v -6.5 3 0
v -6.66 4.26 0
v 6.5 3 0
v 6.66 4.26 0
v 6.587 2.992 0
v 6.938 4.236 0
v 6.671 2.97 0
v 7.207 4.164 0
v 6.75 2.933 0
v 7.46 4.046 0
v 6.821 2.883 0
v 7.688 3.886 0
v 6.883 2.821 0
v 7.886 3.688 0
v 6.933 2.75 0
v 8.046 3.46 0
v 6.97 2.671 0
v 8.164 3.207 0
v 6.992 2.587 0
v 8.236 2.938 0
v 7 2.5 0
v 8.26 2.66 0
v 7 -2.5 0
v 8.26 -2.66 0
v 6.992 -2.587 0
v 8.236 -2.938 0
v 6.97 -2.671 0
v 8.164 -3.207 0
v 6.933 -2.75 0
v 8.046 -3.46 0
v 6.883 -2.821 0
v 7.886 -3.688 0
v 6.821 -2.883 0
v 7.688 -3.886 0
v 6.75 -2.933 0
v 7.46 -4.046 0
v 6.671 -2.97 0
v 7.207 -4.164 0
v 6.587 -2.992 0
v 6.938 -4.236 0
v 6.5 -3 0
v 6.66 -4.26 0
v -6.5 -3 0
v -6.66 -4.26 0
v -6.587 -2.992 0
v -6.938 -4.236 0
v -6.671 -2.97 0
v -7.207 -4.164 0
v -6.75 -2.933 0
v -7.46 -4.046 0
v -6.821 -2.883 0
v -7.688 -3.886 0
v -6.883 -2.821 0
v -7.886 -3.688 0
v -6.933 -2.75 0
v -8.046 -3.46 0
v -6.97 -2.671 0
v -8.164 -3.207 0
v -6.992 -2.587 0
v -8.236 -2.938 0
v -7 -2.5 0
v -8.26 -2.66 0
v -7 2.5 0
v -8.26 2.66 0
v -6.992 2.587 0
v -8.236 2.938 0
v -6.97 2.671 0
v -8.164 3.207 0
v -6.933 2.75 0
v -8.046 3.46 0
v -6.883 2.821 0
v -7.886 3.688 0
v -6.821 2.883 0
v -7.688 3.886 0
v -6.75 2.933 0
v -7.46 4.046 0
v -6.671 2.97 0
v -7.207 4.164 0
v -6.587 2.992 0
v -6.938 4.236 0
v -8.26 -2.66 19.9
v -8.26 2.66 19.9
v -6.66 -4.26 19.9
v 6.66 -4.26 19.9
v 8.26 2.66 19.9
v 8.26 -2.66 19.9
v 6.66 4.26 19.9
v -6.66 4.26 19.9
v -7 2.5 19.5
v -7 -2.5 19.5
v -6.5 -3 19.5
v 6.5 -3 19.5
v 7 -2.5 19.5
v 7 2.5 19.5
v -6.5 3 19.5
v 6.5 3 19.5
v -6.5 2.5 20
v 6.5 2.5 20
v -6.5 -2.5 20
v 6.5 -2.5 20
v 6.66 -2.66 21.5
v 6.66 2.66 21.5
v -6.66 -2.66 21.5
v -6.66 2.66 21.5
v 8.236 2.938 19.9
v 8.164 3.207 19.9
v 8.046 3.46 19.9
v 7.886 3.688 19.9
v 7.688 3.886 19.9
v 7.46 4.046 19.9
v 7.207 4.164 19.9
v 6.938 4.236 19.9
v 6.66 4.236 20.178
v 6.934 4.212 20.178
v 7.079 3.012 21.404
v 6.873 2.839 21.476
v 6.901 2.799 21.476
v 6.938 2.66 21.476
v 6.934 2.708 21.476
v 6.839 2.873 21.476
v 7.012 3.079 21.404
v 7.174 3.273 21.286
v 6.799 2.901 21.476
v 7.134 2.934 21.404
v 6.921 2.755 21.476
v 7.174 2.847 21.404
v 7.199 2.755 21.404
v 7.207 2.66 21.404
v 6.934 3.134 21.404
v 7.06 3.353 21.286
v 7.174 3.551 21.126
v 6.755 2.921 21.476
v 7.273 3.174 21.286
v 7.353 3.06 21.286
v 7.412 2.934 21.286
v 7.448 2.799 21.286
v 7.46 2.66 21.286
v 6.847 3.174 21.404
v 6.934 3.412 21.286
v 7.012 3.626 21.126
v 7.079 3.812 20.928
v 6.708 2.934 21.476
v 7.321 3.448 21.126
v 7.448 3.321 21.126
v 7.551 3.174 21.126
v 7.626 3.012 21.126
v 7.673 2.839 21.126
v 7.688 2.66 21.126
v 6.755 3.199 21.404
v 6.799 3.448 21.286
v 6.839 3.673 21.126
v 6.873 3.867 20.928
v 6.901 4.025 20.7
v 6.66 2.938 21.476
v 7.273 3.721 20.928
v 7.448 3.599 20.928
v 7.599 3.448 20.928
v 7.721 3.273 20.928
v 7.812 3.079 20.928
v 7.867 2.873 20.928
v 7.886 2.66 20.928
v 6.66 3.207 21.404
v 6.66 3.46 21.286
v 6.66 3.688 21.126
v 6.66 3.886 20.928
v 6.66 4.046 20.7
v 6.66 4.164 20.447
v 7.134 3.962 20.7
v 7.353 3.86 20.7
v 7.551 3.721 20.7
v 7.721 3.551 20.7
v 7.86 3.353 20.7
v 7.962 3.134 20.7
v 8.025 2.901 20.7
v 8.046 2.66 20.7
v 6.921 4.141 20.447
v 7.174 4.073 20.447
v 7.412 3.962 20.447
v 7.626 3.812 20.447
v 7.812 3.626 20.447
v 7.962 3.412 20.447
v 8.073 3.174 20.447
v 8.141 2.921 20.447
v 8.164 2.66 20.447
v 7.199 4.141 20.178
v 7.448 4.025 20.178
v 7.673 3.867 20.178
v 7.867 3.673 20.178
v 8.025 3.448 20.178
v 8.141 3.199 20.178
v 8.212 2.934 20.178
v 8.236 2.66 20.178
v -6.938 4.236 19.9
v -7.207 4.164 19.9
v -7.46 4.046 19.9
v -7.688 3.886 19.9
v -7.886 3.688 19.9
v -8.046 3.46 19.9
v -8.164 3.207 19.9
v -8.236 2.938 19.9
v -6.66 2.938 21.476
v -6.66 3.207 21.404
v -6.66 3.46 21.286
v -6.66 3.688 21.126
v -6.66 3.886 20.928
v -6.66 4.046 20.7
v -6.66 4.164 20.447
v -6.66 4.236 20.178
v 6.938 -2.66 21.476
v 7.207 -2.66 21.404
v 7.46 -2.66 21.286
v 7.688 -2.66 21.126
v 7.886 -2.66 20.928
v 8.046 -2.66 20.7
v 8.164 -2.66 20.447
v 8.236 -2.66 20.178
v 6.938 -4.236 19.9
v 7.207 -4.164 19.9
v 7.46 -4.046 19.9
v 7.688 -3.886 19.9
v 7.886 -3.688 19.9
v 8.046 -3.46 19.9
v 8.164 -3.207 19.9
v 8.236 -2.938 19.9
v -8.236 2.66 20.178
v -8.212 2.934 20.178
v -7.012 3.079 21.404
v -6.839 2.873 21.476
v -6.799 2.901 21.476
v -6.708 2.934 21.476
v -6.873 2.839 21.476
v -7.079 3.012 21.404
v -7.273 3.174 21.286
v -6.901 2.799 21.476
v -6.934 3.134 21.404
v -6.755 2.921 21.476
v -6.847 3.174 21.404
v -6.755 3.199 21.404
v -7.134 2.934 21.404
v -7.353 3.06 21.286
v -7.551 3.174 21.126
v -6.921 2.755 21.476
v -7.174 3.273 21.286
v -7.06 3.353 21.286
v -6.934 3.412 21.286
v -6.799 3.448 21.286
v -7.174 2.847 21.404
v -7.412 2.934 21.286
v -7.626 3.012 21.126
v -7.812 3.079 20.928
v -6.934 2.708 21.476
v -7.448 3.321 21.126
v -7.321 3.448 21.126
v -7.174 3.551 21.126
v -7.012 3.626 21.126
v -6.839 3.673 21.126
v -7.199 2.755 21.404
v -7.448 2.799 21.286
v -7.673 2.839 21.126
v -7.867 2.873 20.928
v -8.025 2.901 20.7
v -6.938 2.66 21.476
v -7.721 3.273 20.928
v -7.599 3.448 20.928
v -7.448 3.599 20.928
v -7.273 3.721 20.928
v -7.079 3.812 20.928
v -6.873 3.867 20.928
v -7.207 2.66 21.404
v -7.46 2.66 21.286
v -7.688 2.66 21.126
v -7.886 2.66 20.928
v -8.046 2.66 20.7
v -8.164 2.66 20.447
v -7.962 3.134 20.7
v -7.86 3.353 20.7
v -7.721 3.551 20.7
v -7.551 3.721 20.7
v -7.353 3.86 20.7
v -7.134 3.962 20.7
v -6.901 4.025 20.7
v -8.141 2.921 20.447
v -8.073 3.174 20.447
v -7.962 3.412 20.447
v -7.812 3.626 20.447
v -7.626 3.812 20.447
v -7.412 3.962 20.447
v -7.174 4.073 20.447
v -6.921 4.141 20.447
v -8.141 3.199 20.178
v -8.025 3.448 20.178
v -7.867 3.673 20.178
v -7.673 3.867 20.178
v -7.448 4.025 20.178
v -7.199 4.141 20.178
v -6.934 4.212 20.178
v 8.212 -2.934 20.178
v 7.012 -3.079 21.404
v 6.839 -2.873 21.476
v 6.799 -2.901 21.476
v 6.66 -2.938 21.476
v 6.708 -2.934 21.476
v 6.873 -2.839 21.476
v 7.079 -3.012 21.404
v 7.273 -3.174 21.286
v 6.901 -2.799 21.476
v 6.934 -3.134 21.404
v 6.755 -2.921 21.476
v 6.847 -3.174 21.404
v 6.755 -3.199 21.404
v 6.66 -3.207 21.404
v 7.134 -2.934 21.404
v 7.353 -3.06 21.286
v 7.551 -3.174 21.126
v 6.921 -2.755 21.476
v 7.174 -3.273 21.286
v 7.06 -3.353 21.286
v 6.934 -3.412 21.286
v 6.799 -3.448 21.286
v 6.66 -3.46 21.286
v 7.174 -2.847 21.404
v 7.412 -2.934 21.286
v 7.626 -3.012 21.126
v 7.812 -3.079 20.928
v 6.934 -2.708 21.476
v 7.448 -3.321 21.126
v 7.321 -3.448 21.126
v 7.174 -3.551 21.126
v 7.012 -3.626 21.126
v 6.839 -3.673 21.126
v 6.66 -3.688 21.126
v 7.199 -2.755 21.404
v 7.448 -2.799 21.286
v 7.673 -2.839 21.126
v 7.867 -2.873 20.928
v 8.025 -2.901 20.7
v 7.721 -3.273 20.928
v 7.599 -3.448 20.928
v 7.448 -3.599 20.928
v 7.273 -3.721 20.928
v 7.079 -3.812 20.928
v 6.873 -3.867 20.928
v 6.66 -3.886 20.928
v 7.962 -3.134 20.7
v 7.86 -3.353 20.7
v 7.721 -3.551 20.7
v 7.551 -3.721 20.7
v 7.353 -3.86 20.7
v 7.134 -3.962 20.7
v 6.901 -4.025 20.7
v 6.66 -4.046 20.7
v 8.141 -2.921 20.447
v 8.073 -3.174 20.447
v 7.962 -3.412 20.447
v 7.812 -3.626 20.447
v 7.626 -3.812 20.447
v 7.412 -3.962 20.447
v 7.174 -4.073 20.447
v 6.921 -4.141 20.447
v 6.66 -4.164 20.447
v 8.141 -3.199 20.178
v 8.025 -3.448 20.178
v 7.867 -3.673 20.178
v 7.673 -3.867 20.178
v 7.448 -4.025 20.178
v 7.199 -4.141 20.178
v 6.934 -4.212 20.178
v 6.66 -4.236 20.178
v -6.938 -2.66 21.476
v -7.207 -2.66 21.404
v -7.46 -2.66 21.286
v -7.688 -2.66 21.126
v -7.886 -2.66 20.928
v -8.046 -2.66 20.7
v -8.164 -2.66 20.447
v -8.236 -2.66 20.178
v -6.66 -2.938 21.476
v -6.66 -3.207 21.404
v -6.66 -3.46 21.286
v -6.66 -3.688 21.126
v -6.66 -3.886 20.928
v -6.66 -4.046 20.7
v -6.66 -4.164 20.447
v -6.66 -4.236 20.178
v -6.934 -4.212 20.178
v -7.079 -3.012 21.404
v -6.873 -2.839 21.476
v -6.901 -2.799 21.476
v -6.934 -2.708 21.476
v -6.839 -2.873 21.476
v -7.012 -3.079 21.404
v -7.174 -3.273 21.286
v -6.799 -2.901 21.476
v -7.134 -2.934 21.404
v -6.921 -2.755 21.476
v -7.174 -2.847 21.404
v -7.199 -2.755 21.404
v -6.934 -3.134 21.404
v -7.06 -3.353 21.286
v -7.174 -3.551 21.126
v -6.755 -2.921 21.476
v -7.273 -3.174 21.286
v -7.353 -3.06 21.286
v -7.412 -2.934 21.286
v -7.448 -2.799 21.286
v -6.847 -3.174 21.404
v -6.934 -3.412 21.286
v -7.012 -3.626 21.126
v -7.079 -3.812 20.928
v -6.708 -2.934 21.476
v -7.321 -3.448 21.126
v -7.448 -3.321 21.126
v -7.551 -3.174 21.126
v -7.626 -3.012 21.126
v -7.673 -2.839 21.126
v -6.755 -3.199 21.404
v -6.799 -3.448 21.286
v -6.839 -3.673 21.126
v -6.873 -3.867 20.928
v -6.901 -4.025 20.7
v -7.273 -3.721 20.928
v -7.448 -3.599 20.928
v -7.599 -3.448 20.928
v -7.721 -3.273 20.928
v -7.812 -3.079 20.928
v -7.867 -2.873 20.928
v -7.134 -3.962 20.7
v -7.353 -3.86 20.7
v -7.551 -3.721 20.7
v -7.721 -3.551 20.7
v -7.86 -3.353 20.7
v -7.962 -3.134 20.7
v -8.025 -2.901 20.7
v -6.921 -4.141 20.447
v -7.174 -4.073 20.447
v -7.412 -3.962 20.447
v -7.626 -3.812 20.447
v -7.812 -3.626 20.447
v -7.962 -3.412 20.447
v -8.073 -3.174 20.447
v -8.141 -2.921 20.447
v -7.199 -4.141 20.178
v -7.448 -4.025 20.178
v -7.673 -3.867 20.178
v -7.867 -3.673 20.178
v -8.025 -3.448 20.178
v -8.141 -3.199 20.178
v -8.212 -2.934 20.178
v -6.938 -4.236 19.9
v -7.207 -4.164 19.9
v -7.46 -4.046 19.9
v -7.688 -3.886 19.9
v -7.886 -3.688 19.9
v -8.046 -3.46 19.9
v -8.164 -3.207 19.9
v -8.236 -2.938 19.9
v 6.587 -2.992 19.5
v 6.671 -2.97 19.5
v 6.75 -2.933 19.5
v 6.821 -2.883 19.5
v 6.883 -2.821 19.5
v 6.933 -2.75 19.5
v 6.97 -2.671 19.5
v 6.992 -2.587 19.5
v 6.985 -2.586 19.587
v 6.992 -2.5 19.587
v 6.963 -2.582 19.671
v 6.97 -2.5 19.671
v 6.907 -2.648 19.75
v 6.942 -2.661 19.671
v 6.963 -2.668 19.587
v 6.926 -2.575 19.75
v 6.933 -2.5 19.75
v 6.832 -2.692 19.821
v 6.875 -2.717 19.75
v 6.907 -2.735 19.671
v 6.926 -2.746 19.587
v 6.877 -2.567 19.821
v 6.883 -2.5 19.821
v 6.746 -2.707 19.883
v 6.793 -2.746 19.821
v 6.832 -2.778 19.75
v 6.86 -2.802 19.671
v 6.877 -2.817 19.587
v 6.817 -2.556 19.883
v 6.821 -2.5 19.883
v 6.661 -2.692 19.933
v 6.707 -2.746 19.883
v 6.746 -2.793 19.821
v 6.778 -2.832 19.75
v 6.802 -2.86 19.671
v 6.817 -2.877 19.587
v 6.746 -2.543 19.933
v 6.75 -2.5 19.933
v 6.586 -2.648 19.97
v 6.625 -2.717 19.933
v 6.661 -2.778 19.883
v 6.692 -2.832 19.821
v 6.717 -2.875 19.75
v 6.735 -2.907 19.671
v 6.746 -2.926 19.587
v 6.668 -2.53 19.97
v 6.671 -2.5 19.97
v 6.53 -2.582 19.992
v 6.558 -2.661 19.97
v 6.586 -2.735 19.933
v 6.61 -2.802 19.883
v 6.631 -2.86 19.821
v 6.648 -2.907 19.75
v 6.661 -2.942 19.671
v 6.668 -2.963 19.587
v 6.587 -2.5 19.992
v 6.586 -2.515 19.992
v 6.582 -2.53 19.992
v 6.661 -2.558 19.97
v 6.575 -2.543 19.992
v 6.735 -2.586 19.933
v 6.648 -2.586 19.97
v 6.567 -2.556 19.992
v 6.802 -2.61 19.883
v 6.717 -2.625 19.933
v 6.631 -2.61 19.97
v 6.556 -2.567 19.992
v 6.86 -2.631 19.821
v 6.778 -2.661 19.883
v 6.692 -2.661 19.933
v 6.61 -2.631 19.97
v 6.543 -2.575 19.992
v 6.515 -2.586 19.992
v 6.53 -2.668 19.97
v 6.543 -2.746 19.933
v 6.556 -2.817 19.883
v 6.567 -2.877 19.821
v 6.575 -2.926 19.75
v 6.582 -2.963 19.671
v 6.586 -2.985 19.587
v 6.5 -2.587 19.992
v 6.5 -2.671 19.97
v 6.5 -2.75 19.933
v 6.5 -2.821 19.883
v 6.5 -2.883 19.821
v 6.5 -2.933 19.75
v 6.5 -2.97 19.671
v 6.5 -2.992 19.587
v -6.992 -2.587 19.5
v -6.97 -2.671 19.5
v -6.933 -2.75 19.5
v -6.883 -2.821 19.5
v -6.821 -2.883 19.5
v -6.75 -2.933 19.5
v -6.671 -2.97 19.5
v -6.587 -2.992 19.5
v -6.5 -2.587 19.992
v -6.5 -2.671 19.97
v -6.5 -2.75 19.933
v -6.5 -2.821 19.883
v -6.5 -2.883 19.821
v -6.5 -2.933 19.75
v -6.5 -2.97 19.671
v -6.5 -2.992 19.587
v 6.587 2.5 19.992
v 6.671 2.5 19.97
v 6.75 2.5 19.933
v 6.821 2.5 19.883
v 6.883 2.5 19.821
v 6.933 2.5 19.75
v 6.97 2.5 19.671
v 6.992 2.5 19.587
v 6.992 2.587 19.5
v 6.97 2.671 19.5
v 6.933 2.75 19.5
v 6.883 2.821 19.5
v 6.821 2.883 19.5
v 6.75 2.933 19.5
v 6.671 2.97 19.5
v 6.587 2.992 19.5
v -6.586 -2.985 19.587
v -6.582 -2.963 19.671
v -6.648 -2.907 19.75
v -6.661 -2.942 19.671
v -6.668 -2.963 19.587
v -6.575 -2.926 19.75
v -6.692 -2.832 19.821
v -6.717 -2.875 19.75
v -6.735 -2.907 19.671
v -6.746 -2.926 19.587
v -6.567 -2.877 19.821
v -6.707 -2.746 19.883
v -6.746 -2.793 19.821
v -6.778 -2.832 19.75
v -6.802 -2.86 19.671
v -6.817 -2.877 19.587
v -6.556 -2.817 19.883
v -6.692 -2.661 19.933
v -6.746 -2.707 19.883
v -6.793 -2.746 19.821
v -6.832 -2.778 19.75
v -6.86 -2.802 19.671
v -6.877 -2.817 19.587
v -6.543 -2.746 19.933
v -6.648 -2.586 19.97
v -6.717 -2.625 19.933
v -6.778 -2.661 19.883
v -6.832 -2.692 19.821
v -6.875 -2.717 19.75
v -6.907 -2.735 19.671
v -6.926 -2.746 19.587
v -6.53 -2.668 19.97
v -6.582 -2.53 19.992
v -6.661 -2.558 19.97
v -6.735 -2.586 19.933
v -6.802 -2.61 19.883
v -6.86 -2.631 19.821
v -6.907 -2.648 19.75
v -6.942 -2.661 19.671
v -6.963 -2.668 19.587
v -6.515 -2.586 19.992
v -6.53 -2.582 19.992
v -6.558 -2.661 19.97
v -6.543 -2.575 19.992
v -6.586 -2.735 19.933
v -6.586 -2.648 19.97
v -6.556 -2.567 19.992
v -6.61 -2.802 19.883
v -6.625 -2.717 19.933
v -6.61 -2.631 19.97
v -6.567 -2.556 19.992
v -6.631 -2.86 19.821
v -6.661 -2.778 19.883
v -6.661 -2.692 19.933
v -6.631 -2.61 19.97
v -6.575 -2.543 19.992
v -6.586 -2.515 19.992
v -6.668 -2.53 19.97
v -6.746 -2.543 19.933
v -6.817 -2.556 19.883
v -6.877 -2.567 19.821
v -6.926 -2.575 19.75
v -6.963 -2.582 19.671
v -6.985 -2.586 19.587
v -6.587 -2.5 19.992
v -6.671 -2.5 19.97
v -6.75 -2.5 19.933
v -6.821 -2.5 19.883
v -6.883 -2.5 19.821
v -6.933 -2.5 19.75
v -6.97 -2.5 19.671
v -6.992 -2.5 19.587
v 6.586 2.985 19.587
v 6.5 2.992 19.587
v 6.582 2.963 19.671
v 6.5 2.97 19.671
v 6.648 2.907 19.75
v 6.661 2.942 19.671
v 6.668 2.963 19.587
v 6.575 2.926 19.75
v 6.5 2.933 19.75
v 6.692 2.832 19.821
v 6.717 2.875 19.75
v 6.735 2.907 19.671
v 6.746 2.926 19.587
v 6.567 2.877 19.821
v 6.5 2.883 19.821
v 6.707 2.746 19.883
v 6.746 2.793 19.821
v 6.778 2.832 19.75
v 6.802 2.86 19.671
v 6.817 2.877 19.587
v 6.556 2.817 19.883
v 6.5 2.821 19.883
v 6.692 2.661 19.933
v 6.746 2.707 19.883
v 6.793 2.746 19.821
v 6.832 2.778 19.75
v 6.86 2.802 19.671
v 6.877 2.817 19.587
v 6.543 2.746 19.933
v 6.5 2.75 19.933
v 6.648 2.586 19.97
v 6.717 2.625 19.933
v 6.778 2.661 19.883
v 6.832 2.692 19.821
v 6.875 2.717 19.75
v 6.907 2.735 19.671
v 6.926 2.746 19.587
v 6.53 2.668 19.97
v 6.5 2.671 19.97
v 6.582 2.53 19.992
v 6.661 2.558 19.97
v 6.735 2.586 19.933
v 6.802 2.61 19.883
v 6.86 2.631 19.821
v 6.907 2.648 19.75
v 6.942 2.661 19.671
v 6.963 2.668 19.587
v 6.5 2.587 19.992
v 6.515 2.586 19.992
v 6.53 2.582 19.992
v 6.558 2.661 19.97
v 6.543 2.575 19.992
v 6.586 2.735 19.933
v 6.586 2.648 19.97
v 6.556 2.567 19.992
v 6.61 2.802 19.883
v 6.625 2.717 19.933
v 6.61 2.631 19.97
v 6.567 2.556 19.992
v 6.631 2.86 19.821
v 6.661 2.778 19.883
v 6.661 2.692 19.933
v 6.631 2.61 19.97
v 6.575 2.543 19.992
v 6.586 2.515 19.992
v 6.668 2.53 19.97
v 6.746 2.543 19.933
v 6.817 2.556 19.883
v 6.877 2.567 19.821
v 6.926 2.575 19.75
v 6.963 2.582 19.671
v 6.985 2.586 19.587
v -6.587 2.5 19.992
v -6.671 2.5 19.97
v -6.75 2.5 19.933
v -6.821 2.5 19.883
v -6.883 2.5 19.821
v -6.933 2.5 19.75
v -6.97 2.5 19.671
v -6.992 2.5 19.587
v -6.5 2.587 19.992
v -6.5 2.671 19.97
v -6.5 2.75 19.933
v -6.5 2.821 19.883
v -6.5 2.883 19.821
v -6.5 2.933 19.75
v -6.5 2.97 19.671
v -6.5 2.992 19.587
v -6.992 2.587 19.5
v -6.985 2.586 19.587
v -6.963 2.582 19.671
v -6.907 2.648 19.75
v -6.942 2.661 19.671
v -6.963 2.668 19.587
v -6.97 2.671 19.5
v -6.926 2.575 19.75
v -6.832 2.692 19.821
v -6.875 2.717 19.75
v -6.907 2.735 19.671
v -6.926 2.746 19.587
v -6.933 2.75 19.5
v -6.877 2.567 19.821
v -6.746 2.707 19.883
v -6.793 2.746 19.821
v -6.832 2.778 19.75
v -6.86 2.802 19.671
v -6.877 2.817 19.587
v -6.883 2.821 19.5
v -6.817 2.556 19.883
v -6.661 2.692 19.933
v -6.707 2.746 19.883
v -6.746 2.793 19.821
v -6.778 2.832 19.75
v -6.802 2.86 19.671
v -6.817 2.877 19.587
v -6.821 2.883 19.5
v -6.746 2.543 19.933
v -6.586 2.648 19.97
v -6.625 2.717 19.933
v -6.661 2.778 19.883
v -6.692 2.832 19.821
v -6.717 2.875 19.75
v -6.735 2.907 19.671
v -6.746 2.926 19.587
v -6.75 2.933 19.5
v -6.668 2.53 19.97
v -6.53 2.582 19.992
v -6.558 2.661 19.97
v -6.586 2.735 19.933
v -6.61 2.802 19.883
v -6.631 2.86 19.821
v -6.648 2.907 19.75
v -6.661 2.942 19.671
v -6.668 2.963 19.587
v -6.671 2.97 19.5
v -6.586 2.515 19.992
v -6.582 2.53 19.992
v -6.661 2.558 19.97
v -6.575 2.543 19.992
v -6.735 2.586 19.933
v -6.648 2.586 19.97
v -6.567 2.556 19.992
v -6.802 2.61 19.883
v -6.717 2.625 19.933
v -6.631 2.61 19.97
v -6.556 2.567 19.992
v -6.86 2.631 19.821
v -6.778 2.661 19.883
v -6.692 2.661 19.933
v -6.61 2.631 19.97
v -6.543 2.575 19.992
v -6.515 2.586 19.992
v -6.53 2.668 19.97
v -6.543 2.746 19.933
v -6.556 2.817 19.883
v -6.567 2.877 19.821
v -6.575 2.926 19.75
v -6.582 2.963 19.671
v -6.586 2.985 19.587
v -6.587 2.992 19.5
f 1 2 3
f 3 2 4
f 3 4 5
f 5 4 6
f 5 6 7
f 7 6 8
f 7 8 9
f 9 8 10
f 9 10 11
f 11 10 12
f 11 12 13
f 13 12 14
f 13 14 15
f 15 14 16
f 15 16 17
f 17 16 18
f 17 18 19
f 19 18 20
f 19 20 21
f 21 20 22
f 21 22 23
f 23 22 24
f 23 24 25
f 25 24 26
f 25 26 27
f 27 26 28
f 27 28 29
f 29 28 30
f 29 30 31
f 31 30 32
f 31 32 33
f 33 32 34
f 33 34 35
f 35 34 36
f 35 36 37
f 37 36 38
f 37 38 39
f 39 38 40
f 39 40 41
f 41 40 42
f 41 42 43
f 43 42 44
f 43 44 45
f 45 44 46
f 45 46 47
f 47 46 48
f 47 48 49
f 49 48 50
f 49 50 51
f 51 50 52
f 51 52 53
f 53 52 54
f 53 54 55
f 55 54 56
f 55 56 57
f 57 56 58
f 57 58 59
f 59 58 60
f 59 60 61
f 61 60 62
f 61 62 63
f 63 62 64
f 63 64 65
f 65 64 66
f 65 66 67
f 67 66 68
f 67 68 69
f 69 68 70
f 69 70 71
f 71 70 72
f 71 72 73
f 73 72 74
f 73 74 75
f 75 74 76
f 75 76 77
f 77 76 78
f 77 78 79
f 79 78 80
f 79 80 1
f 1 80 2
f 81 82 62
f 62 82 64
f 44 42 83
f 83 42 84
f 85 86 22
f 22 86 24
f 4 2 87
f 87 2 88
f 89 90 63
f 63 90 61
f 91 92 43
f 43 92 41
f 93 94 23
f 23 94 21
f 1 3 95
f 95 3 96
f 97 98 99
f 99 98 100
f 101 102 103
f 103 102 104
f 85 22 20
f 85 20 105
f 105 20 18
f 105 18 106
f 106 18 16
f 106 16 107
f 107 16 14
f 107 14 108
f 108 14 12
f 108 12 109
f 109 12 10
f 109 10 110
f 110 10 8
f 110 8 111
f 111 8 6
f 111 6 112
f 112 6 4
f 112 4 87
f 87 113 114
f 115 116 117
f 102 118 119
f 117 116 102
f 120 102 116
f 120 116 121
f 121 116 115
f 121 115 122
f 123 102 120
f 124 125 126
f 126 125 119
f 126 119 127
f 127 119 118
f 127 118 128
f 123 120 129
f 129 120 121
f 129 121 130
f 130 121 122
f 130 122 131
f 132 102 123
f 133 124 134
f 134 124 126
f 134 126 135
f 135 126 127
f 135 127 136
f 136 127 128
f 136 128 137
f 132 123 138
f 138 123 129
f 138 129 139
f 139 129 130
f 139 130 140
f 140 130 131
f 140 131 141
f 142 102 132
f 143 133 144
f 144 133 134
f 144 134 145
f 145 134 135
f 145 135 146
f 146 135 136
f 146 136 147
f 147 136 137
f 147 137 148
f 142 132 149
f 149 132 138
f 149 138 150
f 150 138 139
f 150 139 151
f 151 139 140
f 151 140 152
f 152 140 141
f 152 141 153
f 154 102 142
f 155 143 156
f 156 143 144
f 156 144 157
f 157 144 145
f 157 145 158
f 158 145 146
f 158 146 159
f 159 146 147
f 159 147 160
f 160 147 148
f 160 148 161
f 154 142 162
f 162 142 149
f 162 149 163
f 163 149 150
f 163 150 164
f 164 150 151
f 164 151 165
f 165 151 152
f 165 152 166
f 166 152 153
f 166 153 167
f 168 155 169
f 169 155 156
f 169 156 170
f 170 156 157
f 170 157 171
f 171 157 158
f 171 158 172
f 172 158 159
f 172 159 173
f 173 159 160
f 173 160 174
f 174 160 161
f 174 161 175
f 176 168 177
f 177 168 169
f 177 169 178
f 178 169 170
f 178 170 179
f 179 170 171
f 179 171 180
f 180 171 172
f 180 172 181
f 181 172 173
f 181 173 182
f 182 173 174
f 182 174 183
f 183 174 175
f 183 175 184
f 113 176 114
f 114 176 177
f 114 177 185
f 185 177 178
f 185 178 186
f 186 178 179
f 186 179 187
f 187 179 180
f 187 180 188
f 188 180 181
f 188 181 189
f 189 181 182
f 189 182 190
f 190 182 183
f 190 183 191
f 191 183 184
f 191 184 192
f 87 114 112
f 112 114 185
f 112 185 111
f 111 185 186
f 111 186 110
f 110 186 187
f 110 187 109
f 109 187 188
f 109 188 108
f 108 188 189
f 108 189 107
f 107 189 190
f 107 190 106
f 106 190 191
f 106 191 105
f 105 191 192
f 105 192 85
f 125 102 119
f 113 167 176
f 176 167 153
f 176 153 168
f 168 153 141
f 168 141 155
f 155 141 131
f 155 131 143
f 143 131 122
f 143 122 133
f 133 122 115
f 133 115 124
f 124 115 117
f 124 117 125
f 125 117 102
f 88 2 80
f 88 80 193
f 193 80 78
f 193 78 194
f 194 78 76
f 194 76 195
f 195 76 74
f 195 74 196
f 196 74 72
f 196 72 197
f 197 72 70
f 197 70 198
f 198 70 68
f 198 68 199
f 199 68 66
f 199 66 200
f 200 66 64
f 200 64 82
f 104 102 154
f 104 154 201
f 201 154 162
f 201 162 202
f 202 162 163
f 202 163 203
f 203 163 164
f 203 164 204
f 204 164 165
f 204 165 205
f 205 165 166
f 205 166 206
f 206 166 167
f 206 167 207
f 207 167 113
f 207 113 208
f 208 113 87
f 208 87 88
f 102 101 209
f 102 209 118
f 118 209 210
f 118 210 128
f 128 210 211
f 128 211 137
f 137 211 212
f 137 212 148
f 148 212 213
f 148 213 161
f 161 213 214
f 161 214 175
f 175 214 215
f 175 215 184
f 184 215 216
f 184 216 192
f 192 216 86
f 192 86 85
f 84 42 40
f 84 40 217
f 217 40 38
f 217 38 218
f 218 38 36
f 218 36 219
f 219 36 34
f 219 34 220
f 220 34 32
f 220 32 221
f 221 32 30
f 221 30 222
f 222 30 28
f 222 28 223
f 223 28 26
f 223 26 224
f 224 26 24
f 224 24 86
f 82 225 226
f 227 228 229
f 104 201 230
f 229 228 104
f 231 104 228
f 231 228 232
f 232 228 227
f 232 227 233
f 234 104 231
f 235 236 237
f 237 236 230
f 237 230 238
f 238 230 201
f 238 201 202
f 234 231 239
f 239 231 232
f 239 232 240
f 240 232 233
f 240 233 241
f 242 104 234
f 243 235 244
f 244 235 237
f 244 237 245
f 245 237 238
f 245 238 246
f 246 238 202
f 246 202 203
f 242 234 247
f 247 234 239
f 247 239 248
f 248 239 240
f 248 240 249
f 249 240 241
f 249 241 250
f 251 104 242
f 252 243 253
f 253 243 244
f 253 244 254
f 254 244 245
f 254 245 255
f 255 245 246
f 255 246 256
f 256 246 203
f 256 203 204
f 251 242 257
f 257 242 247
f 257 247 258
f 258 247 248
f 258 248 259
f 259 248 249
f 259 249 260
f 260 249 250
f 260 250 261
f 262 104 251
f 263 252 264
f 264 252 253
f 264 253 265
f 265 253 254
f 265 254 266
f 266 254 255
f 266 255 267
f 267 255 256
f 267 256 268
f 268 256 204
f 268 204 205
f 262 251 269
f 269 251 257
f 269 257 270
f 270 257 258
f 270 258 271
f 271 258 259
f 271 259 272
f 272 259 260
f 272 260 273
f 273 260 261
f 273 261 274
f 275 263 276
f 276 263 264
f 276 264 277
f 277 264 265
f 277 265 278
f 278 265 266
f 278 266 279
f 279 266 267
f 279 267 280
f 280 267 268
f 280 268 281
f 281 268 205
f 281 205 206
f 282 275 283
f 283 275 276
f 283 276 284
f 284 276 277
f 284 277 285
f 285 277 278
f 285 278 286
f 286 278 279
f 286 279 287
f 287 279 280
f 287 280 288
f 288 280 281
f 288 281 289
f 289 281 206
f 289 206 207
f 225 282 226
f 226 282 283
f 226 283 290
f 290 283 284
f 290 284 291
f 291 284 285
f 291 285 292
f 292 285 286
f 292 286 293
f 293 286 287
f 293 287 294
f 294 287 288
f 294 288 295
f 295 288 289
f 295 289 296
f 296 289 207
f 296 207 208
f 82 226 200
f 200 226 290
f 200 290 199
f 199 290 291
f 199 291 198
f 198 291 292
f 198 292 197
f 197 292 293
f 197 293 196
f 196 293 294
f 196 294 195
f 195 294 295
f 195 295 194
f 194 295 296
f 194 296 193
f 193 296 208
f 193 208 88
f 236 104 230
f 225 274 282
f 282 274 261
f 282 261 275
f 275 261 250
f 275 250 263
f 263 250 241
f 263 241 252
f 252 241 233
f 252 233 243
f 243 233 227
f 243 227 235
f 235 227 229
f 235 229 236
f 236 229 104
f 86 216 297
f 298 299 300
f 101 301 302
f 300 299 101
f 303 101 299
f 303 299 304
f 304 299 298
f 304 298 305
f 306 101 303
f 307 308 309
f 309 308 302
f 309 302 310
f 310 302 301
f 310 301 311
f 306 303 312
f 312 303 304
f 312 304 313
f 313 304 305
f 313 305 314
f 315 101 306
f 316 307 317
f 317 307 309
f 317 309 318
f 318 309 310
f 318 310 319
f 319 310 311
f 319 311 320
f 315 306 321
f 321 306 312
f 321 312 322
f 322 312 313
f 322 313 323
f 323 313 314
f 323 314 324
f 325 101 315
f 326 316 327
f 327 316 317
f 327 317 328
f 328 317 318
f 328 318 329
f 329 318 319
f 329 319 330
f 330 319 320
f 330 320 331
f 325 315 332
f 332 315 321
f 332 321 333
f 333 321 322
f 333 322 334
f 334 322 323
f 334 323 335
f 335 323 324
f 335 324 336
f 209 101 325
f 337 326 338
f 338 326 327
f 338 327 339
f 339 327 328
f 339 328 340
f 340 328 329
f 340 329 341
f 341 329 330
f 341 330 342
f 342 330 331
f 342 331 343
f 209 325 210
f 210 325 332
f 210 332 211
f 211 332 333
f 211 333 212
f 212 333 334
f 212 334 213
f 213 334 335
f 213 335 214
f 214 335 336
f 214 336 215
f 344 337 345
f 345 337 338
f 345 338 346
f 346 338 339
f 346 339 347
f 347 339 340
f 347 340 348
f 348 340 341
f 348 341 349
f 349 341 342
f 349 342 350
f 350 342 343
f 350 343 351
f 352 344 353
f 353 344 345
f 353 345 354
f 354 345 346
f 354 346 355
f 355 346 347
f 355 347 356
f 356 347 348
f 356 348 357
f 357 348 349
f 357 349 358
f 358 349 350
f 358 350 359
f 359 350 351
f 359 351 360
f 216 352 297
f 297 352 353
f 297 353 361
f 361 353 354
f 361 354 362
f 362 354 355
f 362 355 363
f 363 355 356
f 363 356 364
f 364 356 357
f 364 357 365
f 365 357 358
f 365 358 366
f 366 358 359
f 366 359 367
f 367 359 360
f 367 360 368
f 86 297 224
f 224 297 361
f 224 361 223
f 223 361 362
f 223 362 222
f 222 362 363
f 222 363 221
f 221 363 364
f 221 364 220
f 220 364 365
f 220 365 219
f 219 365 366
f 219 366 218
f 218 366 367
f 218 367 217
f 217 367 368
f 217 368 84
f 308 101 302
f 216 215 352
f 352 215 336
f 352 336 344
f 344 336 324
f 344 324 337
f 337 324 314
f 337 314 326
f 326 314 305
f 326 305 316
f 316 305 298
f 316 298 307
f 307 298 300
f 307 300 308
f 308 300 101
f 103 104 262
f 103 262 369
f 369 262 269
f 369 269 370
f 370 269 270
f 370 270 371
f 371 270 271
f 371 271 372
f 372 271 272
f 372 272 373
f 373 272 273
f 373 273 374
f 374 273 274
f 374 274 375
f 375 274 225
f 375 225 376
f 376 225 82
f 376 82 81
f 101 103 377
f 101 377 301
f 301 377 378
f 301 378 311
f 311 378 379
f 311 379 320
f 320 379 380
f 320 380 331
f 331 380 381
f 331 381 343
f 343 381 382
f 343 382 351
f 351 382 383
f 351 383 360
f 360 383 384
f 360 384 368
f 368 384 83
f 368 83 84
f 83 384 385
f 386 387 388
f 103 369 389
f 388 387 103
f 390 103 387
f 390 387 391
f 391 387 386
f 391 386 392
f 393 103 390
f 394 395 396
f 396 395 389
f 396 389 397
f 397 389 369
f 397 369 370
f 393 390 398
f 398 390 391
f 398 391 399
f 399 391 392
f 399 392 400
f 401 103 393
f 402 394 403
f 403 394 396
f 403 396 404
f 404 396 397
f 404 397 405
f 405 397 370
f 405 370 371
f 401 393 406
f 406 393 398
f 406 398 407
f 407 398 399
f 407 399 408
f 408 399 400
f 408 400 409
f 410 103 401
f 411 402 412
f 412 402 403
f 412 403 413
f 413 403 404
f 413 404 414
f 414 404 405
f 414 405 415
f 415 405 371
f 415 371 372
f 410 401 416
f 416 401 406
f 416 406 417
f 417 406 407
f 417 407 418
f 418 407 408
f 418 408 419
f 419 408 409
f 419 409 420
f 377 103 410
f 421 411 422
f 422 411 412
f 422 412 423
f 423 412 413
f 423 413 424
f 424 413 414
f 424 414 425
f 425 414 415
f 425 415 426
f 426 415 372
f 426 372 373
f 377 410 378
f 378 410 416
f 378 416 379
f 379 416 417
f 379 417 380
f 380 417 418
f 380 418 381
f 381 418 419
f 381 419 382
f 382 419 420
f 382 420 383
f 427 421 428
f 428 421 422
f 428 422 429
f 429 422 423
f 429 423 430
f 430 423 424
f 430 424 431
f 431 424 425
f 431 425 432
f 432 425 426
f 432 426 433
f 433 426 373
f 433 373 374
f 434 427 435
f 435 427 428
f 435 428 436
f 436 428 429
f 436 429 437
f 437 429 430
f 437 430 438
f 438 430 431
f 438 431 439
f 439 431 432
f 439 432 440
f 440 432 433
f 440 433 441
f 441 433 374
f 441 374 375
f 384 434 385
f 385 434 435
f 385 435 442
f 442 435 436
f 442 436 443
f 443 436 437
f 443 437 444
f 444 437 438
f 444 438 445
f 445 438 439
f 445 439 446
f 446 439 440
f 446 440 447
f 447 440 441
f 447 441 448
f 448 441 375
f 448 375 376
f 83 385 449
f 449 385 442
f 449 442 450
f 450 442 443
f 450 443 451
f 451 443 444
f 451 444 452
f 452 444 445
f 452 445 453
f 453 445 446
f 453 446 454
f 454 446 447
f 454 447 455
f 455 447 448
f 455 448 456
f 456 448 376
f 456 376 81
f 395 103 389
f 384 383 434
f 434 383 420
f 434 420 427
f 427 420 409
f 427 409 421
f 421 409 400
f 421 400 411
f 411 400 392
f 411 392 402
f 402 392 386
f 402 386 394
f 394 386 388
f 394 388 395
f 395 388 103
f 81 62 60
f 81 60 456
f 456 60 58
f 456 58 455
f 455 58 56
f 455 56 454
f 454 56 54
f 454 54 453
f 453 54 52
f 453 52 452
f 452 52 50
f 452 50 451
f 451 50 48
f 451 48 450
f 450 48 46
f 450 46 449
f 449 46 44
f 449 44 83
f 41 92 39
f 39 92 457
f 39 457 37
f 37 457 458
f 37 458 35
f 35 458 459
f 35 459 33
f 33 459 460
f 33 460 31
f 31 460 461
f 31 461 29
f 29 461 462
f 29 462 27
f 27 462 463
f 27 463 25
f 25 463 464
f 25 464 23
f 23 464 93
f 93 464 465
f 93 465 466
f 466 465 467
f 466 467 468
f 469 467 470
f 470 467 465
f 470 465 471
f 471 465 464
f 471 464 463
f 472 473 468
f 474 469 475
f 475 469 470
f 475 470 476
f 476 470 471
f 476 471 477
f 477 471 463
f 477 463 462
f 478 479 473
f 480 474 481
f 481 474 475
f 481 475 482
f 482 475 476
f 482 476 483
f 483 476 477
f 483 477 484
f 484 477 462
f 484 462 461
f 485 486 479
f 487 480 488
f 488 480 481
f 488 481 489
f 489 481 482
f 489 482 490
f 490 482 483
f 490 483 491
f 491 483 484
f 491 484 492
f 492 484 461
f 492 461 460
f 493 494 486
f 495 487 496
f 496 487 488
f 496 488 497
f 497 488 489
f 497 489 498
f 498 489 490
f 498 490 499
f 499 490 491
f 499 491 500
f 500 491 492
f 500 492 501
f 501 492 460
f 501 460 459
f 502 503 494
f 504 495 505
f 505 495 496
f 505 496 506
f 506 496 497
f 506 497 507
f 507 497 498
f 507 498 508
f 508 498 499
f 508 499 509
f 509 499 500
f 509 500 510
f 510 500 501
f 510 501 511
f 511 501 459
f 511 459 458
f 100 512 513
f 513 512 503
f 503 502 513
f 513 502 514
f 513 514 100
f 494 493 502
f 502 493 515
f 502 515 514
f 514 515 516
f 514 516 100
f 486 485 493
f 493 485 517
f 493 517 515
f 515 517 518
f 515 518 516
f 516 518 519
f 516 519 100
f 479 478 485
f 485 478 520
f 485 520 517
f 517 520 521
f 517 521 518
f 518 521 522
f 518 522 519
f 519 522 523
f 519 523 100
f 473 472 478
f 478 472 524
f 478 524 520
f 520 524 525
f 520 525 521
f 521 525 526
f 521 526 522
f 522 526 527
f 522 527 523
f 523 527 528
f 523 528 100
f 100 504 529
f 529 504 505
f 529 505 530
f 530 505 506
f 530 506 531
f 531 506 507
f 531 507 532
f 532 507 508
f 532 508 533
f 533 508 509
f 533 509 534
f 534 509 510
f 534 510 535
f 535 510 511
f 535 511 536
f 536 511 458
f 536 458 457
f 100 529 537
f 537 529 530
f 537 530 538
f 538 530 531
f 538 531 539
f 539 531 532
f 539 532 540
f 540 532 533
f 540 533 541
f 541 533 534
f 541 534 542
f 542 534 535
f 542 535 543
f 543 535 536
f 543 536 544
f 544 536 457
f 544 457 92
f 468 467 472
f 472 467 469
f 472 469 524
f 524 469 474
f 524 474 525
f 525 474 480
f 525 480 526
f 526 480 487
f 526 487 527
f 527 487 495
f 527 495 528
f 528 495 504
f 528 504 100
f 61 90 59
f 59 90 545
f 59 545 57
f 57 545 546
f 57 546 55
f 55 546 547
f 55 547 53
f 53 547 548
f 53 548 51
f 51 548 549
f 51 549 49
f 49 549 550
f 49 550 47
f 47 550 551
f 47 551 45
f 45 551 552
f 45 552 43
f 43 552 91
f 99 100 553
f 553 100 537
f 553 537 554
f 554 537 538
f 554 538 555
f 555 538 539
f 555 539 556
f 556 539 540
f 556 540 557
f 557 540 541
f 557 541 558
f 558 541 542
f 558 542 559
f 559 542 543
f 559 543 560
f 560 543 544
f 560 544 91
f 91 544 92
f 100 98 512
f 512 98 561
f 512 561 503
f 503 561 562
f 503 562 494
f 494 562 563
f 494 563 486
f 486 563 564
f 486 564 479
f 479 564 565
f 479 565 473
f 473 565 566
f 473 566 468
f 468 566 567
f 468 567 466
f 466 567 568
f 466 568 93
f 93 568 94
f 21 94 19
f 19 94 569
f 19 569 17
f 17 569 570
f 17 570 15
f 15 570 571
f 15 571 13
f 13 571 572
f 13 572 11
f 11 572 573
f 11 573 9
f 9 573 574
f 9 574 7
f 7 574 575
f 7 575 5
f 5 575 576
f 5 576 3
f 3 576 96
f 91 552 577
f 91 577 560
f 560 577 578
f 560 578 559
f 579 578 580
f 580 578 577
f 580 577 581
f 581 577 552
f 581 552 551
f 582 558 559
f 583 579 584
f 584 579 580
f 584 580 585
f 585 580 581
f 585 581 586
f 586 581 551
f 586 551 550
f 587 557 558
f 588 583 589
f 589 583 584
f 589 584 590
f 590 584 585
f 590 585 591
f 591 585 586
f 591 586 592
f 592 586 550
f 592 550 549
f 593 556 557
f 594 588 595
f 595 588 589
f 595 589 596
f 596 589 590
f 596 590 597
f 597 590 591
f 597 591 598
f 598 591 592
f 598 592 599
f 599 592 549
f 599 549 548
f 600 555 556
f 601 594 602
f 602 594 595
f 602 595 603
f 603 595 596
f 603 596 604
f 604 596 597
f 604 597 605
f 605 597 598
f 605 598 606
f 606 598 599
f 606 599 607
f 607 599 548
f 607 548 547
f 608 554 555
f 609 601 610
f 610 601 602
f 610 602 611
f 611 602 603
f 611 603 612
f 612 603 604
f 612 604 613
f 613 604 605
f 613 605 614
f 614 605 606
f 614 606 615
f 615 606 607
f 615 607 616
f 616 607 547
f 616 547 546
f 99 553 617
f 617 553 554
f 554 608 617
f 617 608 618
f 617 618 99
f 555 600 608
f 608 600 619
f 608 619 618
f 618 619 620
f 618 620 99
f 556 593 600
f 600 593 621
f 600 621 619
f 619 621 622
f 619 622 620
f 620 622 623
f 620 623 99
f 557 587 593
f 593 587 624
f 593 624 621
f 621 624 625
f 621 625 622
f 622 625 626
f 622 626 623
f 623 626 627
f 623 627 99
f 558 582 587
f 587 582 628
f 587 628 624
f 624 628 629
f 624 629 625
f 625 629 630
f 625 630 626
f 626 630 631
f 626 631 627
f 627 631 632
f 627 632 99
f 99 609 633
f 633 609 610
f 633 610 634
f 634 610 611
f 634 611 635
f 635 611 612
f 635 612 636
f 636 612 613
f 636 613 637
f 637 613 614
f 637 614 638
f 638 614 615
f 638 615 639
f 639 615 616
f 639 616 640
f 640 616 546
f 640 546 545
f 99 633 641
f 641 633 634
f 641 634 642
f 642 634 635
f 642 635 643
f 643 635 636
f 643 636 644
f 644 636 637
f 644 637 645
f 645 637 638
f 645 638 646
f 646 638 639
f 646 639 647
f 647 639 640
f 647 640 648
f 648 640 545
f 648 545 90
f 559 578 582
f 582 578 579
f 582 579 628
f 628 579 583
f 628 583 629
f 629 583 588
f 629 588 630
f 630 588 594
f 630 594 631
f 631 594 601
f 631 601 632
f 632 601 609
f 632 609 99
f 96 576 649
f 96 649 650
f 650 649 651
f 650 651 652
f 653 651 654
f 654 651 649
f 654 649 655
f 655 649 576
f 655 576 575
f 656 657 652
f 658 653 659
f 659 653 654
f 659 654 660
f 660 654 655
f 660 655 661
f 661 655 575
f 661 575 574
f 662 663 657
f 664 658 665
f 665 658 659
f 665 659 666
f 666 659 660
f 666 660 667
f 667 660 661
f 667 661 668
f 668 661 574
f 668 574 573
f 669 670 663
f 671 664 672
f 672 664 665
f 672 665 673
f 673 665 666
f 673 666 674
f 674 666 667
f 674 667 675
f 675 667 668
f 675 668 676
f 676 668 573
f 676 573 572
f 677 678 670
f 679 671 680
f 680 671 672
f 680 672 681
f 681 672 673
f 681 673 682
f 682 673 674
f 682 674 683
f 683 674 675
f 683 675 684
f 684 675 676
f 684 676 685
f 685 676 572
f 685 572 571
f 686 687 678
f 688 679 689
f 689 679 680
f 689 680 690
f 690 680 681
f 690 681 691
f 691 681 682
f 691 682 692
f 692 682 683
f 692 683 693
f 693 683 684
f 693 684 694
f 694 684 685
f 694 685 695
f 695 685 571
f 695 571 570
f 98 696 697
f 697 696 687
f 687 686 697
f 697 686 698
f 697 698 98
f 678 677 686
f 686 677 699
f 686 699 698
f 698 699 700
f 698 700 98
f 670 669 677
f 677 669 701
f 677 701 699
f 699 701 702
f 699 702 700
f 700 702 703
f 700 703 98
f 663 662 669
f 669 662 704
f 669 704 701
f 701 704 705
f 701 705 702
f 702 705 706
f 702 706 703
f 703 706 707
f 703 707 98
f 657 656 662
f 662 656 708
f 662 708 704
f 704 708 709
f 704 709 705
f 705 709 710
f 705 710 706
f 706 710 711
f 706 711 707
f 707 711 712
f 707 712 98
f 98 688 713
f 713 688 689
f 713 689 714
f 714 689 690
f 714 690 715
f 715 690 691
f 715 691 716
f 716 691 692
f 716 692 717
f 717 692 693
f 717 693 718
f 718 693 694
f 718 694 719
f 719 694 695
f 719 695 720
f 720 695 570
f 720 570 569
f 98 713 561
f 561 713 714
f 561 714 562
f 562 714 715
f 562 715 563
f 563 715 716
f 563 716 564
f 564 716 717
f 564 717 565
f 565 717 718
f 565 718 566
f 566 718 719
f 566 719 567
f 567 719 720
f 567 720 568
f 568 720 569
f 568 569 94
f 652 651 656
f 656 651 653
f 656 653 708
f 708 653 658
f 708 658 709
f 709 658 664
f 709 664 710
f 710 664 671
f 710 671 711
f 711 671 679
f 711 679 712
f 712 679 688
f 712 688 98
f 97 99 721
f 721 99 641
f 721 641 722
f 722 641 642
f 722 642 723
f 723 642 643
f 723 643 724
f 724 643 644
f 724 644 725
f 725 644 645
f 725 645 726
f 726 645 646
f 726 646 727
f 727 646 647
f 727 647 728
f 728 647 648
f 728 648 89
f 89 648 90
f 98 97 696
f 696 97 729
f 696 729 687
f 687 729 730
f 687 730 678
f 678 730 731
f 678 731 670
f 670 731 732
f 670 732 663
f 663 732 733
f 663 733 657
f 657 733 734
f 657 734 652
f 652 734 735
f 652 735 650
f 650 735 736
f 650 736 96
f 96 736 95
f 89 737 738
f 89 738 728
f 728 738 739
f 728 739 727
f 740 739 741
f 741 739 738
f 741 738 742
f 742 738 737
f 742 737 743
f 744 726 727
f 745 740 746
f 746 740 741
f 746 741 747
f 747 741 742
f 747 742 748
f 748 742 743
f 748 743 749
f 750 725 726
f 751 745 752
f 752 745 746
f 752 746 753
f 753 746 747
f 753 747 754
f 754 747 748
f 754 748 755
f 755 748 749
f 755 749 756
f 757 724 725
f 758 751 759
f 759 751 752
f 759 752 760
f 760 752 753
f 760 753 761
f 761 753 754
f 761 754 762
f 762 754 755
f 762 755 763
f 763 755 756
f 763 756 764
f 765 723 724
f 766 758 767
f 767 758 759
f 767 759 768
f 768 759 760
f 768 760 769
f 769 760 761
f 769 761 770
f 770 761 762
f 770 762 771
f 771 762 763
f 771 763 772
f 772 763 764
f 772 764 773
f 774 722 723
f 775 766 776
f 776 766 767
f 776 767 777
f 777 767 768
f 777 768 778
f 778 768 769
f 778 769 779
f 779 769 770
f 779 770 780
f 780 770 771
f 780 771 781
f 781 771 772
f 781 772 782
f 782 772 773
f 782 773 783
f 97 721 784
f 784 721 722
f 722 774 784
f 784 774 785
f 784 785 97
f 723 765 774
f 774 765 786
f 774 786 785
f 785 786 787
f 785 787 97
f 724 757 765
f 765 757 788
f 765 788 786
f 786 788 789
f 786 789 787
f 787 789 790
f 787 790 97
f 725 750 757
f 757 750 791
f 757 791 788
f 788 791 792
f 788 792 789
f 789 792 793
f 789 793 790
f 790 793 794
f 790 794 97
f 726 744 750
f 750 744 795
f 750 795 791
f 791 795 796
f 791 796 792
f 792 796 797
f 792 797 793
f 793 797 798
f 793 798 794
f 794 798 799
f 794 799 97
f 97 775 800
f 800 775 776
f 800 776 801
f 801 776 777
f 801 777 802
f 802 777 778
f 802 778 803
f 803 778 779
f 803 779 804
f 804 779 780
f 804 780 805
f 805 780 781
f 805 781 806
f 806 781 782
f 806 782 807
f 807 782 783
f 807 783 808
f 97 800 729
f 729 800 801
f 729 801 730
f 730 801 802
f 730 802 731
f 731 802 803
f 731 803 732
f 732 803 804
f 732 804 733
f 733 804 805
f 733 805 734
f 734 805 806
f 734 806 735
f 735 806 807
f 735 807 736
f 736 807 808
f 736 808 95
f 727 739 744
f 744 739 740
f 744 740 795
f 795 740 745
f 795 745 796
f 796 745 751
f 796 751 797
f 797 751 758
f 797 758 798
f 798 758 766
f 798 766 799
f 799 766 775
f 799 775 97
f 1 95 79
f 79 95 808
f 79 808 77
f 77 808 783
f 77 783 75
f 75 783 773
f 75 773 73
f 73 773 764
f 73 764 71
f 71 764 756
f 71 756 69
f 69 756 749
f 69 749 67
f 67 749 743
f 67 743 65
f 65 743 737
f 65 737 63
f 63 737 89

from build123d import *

# Parameters (mm, degrees)
SCHIZZO1_W                   = 16.52
SCHIZZO1_H                   = 8.52
SCHIZZO1_W_2                 = 14
SCHIZZO1_H_2                 = 6
ESTRUSIONE_SOTTILE1_DEPTH    = 20
SCHIZZO2_W                   = 16.52
SCHIZZO2_H                   = 8.52
ESTRUSIONE_ESTRUSIONE1_DEPTH = 1.5
RACCORDO1_R                  = 1.6
RACCORDO2_R                  = 0.5


with BuildPart() as part:
    # Schizzo1 → Estrusione-Sottile1 (new body)
    with BuildSketch(Plane.XY):
        Rectangle(SCHIZZO1_W, SCHIZZO1_H)
        Rectangle(SCHIZZO1_W_2, SCHIZZO1_H_2, mode=Mode.SUBTRACT)
    extrude(amount=ESTRUSIONE_SOTTILE1_DEPTH)

    # Schizzo2 → Estrusione-Estrusione1 (add)
    with BuildSketch(Plane.XY.offset(20)):
        Rectangle(SCHIZZO2_W, SCHIZZO2_H)
    extrude(amount=ESTRUSIONE_ESTRUSIONE1_DEPTH)

    # Raccordo1
    raccordo1_edges = [part.edges().sort_by_distance(p)[0] for p in [
        (0, -4.26, 21.5),
        (8.26, 0, 21.5),
        (0, 4.26, 21.5),
        (-8.26, 0, 21.5),
        (-8.26, 4.26, 10.75),
        (8.26, 4.26, 10.75),
        (8.26, -4.26, 10.75),
        (-8.26, -4.26, 10.75),
    ]]
    fillet(raccordo1_edges, radius=RACCORDO1_R)

    # Raccordo2
    raccordo2_edges = [part.edges().sort_by_distance(p)[0] for p in [
        (-7, 3, 10),
        (-7, -3, 10),
        (7, -3, 10),
        (7, 3, 10),
        (-7, 0, 20),
        (0, -3, 20),
        (7, 0, 20),
        (0, 3, 20),
    ]]
    fillet(raccordo2_edges, radius=RACCORDO2_R)


solid = part.part
